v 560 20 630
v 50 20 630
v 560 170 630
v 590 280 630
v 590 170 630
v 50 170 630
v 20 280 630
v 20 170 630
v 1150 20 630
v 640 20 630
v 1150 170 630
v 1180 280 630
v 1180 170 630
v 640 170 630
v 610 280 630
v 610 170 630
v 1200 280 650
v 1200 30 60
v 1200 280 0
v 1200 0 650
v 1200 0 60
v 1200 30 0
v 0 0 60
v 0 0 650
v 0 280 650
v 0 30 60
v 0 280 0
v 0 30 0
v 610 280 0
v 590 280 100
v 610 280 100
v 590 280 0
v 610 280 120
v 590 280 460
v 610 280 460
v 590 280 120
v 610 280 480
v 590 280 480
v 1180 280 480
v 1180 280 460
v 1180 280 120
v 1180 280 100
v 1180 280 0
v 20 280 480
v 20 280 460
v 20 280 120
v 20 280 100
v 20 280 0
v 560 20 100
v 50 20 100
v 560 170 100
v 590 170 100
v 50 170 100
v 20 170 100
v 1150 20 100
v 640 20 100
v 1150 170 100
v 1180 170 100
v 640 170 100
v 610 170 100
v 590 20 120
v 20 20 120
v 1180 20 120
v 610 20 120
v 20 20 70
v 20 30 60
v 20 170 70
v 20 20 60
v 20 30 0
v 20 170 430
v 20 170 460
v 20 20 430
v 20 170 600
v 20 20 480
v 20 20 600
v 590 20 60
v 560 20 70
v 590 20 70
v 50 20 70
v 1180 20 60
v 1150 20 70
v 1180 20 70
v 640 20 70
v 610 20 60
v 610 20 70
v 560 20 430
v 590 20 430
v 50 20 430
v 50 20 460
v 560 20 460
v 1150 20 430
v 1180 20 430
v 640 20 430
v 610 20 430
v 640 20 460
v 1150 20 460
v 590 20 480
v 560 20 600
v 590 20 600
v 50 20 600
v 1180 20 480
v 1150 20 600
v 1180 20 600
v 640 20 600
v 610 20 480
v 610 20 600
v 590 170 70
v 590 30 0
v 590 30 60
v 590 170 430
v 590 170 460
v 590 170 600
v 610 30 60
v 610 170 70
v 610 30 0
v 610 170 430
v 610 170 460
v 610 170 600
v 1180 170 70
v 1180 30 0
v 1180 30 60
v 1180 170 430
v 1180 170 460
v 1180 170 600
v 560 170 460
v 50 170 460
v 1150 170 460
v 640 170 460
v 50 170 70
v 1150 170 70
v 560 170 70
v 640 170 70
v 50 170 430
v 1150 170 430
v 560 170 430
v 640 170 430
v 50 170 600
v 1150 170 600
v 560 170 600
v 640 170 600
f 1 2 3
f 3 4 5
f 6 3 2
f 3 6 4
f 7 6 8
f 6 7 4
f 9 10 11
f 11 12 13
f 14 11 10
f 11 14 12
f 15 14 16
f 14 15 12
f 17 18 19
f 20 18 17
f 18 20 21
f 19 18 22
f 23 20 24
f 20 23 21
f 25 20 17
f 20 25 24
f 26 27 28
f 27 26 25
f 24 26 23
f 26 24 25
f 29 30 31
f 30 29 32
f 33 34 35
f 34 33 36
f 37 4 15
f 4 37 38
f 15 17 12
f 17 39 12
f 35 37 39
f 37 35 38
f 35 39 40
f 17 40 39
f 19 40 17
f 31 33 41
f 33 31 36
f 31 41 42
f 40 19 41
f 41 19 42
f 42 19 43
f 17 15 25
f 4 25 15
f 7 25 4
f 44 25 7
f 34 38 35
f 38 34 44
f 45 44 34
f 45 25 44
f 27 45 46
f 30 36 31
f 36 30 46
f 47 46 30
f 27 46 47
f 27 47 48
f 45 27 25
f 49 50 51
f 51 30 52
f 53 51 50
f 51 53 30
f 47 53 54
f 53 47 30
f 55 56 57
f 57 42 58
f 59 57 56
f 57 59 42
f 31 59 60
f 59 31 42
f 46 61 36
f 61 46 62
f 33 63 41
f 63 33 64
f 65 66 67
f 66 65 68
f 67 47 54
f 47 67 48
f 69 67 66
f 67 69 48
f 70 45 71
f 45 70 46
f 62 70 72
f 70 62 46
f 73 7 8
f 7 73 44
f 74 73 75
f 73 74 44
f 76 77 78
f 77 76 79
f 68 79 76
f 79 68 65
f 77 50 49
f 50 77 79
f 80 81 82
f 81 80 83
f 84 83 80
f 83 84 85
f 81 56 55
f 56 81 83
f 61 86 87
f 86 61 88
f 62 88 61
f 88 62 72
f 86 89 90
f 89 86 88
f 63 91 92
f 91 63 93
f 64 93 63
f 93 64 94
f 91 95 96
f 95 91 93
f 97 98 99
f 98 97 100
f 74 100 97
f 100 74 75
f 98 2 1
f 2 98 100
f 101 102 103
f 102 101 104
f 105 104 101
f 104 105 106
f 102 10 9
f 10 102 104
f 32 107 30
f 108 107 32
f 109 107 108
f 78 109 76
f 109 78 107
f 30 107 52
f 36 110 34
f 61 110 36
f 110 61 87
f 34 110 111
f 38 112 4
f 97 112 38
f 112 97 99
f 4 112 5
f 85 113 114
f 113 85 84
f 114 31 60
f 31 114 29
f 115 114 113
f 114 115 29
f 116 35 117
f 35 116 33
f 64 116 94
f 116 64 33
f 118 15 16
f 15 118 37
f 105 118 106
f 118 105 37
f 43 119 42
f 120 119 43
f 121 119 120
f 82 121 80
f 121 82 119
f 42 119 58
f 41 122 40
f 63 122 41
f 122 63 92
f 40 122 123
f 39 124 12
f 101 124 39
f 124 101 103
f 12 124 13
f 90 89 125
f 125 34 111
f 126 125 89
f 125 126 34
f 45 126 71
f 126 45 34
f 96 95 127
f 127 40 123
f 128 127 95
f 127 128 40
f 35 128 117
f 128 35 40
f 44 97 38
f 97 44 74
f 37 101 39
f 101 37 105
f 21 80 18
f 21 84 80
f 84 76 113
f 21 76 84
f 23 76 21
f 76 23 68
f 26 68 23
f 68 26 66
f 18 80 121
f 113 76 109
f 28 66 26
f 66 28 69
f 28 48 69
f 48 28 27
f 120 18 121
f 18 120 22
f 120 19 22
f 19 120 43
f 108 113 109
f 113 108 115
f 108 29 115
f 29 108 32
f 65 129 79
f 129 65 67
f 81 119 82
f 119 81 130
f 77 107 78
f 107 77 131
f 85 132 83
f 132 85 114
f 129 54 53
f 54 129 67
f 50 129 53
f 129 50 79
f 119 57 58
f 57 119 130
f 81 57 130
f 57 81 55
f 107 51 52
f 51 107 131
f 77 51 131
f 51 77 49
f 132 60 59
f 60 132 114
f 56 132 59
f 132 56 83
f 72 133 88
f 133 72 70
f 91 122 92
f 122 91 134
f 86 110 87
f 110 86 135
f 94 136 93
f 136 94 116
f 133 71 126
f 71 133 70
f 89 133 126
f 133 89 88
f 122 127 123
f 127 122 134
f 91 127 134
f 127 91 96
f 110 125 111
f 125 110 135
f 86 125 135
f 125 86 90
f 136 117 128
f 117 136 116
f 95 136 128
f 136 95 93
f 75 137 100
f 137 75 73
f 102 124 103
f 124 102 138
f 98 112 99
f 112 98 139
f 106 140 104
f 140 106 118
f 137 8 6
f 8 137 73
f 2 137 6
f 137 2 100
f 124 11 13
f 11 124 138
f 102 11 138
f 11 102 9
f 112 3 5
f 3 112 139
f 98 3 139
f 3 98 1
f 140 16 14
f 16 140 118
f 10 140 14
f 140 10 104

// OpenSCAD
// Generated by Parametrix
ca_bookshelf_faceFace_000 = [ [ 20.0000, 60.0000 ],[ 1180.0000, 60.0000 ],[ 1180.0000, 630.0000 ],[ 20.0000, 630.0000 ],[ 20.0000, 60.0000 ] ];
cb_bookshelf_faceFace_000 = [  0, 1, 2, 3, 4 ];
a_bookshelf_faceFace = concat(ca_bookshelf_faceFace_000);
b_bookshelf_faceFace = [cb_bookshelf_faceFace_000];
ca_bookshelf_faceSide_000 = [ [ 280.0000, 0.0000 ],[ 280.0000, 630.0000 ],[ 0.0000, 630.0000 ],[ 0.0000, 60.0000 ],[ 30.0000, 60.0000 ],[ 30.0000, 0.0000 ],[ 280.0000, 0.0000 ] ];
cb_bookshelf_faceSide_000 = [  0, 1, 2, 3, 4, 5, 6 ];
a_bookshelf_faceSide = concat(ca_bookshelf_faceSide_000);
b_bookshelf_faceSide = [cb_bookshelf_faceSide_000];
ca_bookshelf_faceSideMid_000 = [ [ 280.0000, 0.0000 ],[ 280.0000, 630.0000 ],[ 20.0000, 630.0000 ],[ 20.0000, 60.0000 ],[ 30.0000, 60.0000 ],[ 30.0000, 0.0000 ],[ 280.0000, 0.0000 ] ];
cb_bookshelf_faceSideMid_000 = [  0, 1, 2, 3, 4, 5, 6 ];
a_bookshelf_faceSideMid = concat(ca_bookshelf_faceSideMid_000);
b_bookshelf_faceSideMid = [cb_bookshelf_faceSideMid_000];
ca_bookshelf_faceTop_000 = [ [ 0.0000, 0.0000 ],[ 1200.0000, 0.0000 ],[ 1200.0000, 280.0000 ],[ 0.0000, 280.0000 ],[ 0.0000, 0.0000 ] ];
cb_bookshelf_faceTop_000 = [  0, 1, 2, 3, 4 ];
a_bookshelf_faceTop = concat(ca_bookshelf_faceTop_000);
b_bookshelf_faceTop = [cb_bookshelf_faceTop_000];
ca_bookshelf_facePlateau_000 = [ [ 20.0000, 20.0000 ],[ 590.0000, 20.0000 ],[ 590.0000, 280.0000 ],[ 20.0000, 280.0000 ],[ 20.0000, 20.0000 ] ];
cb_bookshelf_facePlateau_000 = [  0, 1, 2, 3, 4 ];
ca_bookshelf_facePlateau_001 = [ [ 610.0000, 20.0000 ],[ 1180.0000, 20.0000 ],[ 1180.0000, 280.0000 ],[ 610.0000, 280.0000 ],[ 610.0000, 20.0000 ] ];
cb_bookshelf_facePlateau_001 = [  5, 6, 7, 8, 9 ];
a_bookshelf_facePlateau = concat(ca_bookshelf_facePlateau_000, ca_bookshelf_facePlateau_001);
b_bookshelf_facePlateau = [cb_bookshelf_facePlateau_000, cb_bookshelf_facePlateau_001];
ca_bookshelf_faceBeamFace_000 = [ [ 50.0000, 70.0000 ],[ 560.0000, 70.0000 ],[ 560.0000, 100.0000 ],[ 50.0000, 100.0000 ],[ 50.0000, 70.0000 ] ];
cb_bookshelf_faceBeamFace_000 = [  0, 1, 2, 3, 4 ];
ca_bookshelf_faceBeamFace_001 = [ [ 50.0000, 430.0000 ],[ 560.0000, 430.0000 ],[ 560.0000, 460.0000 ],[ 50.0000, 460.0000 ],[ 50.0000, 430.0000 ] ];
cb_bookshelf_faceBeamFace_001 = [  5, 6, 7, 8, 9 ];
ca_bookshelf_faceBeamFace_002 = [ [ 50.0000, 600.0000 ],[ 560.0000, 600.0000 ],[ 560.0000, 630.0000 ],[ 50.0000, 630.0000 ],[ 50.0000, 600.0000 ] ];
cb_bookshelf_faceBeamFace_002 = [  10, 11, 12, 13, 14 ];
ca_bookshelf_faceBeamFace_003 = [ [ 640.0000, 70.0000 ],[ 1150.0000, 70.0000 ],[ 1150.0000, 100.0000 ],[ 640.0000, 100.0000 ],[ 640.0000, 70.0000 ] ];
cb_bookshelf_faceBeamFace_003 = [  15, 16, 17, 18, 19 ];
ca_bookshelf_faceBeamFace_004 = [ [ 640.0000, 430.0000 ],[ 1150.0000, 430.0000 ],[ 1150.0000, 460.0000 ],[ 640.0000, 460.0000 ],[ 640.0000, 430.0000 ] ];
cb_bookshelf_faceBeamFace_004 = [  20, 21, 22, 23, 24 ];
ca_bookshelf_faceBeamFace_005 = [ [ 640.0000, 600.0000 ],[ 1150.0000, 600.0000 ],[ 1150.0000, 630.0000 ],[ 640.0000, 630.0000 ],[ 640.0000, 600.0000 ] ];
cb_bookshelf_faceBeamFace_005 = [  25, 26, 27, 28, 29 ];
ca_bookshelf_faceBeamFace_006 = [ [ 20.0000, 120.0000 ],[ 50.0000, 120.0000 ],[ 50.0000, 430.0000 ],[ 20.0000, 430.0000 ],[ 20.0000, 120.0000 ] ];
cb_bookshelf_faceBeamFace_006 = [  30, 31, 32, 33, 34 ];
ca_bookshelf_faceBeamFace_007 = [ [ 20.0000, 480.0000 ],[ 50.0000, 480.0000 ],[ 50.0000, 600.0000 ],[ 20.0000, 600.0000 ],[ 20.0000, 480.0000 ] ];
cb_bookshelf_faceBeamFace_007 = [  35, 36, 37, 38, 39 ];
ca_bookshelf_faceBeamFace_008 = [ [ 1150.0000, 120.0000 ],[ 1180.0000, 120.0000 ],[ 1180.0000, 430.0000 ],[ 1150.0000, 430.0000 ],[ 1150.0000, 120.0000 ] ];
cb_bookshelf_faceBeamFace_008 = [  40, 41, 42, 43, 44 ];
ca_bookshelf_faceBeamFace_009 = [ [ 1150.0000, 480.0000 ],[ 1180.0000, 480.0000 ],[ 1180.0000, 600.0000 ],[ 1150.0000, 600.0000 ],[ 1150.0000, 480.0000 ] ];
cb_bookshelf_faceBeamFace_009 = [  45, 46, 47, 48, 49 ];
ca_bookshelf_faceBeamFace_010 = [ [ 560.0000, 120.0000 ],[ 590.0000, 120.0000 ],[ 590.0000, 430.0000 ],[ 560.0000, 430.0000 ],[ 560.0000, 120.0000 ] ];
cb_bookshelf_faceBeamFace_010 = [  50, 51, 52, 53, 54 ];
ca_bookshelf_faceBeamFace_011 = [ [ 560.0000, 480.0000 ],[ 590.0000, 480.0000 ],[ 590.0000, 600.0000 ],[ 560.0000, 600.0000 ],[ 560.0000, 480.0000 ] ];
cb_bookshelf_faceBeamFace_011 = [  55, 56, 57, 58, 59 ];
ca_bookshelf_faceBeamFace_012 = [ [ 610.0000, 120.0000 ],[ 640.0000, 120.0000 ],[ 640.0000, 430.0000 ],[ 610.0000, 430.0000 ],[ 610.0000, 120.0000 ] ];
cb_bookshelf_faceBeamFace_012 = [  60, 61, 62, 63, 64 ];
ca_bookshelf_faceBeamFace_013 = [ [ 610.0000, 480.0000 ],[ 640.0000, 480.0000 ],[ 640.0000, 600.0000 ],[ 610.0000, 600.0000 ],[ 610.0000, 480.0000 ] ];
cb_bookshelf_faceBeamFace_013 = [  65, 66, 67, 68, 69 ];
a_bookshelf_faceBeamFace = concat(ca_bookshelf_faceBeamFace_000, ca_bookshelf_faceBeamFace_001, ca_bookshelf_faceBeamFace_002, ca_bookshelf_faceBeamFace_003, ca_bookshelf_faceBeamFace_004, ca_bookshelf_faceBeamFace_005, ca_bookshelf_faceBeamFace_006, ca_bookshelf_faceBeamFace_007, ca_bookshelf_faceBeamFace_008, ca_bookshelf_faceBeamFace_009, ca_bookshelf_faceBeamFace_010, ca_bookshelf_faceBeamFace_011, ca_bookshelf_faceBeamFace_012, ca_bookshelf_faceBeamFace_013);
b_bookshelf_faceBeamFace = [cb_bookshelf_faceBeamFace_000, cb_bookshelf_faceBeamFace_001, cb_bookshelf_faceBeamFace_002, cb_bookshelf_faceBeamFace_003, cb_bookshelf_faceBeamFace_004, cb_bookshelf_faceBeamFace_005, cb_bookshelf_faceBeamFace_006, cb_bookshelf_faceBeamFace_007, cb_bookshelf_faceBeamFace_008, cb_bookshelf_faceBeamFace_009, cb_bookshelf_faceBeamFace_010, cb_bookshelf_faceBeamFace_011, cb_bookshelf_faceBeamFace_012, cb_bookshelf_faceBeamFace_013];
ca_bookshelf_faceBeamTop_000 = [ [ 20.0000, 20.0000 ],[ 50.0000, 20.0000 ],[ 50.0000, 170.0000 ],[ 20.0000, 170.0000 ],[ 20.0000, 20.0000 ] ];
cb_bookshelf_faceBeamTop_000 = [  0, 1, 2, 3, 4 ];
ca_bookshelf_faceBeamTop_001 = [ [ 1150.0000, 20.0000 ],[ 1180.0000, 20.0000 ],[ 1180.0000, 170.0000 ],[ 1150.0000, 170.0000 ],[ 1150.0000, 20.0000 ] ];
cb_bookshelf_faceBeamTop_001 = [  5, 6, 7, 8, 9 ];
ca_bookshelf_faceBeamTop_002 = [ [ 560.0000, 20.0000 ],[ 590.0000, 20.0000 ],[ 590.0000, 170.0000 ],[ 560.0000, 170.0000 ],[ 560.0000, 20.0000 ] ];
cb_bookshelf_faceBeamTop_002 = [  10, 11, 12, 13, 14 ];
ca_bookshelf_faceBeamTop_003 = [ [ 610.0000, 20.0000 ],[ 640.0000, 20.0000 ],[ 640.0000, 170.0000 ],[ 610.0000, 170.0000 ],[ 610.0000, 20.0000 ] ];
cb_bookshelf_faceBeamTop_003 = [  15, 16, 17, 18, 19 ];
a_bookshelf_faceBeamTop = concat(ca_bookshelf_faceBeamTop_000, ca_bookshelf_faceBeamTop_001, ca_bookshelf_faceBeamTop_002, ca_bookshelf_faceBeamTop_003);
b_bookshelf_faceBeamTop = [cb_bookshelf_faceBeamTop_000, cb_bookshelf_faceBeamTop_001, cb_bookshelf_faceBeamTop_002, cb_bookshelf_faceBeamTop_003];

module subpax_bookshelf_top () {
	translate( [ 0, 0, 630 ])
		rotate( [ 0, 0, 0 ])
			   linear_extrude(height = 20) polygon(a_bookshelf_faceTop, b_bookshelf_faceTop);
}

module subpax_bookshelf_plateau1 () {
	translate( [ 0, 0, 100 ])
		rotate( [ 0, 0, 0 ])
			   linear_extrude(height = 20) polygon(a_bookshelf_facePlateau, b_bookshelf_facePlateau);
}

module subpax_bookshelf_plateau2 () {
	translate( [ 0, 0, 460 ])
		rotate( [ 0, 0, 0 ])
			   linear_extrude(height = 20) polygon(a_bookshelf_facePlateau, b_bookshelf_facePlateau);
}

module subpax_bookshelf_back () {
	translate( [ 0, 20, 0 ])
		rotate( [ 90, 0, 0 ])
			   linear_extrude(height = 20) polygon(a_bookshelf_faceFace, b_bookshelf_faceFace);
}

module subpax_bookshelf_side0 () {
	translate( [ 0, 0, 0 ])
		rotate( [ 90, 0, 90 ])
			   linear_extrude(height = 20) polygon(a_bookshelf_faceSide, b_bookshelf_faceSide);
}

module subpax_bookshelf_side1 () {
	translate( [ 1180, 0, 0 ])
		rotate( [ 90, 0, 90 ])
			   linear_extrude(height = 20) polygon(a_bookshelf_faceSide, b_bookshelf_faceSide);
}

module subpax_bookshelf_sideMid () {
	translate( [ 590, 0, 0 ])
		rotate( [ 90, 0, 90 ])
			   linear_extrude(height = 20) polygon(a_bookshelf_faceSideMid, b_bookshelf_faceSideMid);
}

module subpax_bookshelf_beam1 () {
	translate( [ 0, 50, 0 ])
		rotate( [ 90, 0, 0 ])
			   linear_extrude(height = 30) polygon(a_bookshelf_faceBeamFace, b_bookshelf_faceBeamFace);
}

module subpax_bookshelf_beam20 () {
	translate( [ 0, 0, 70 ])
		rotate( [ 0, 0, 0 ])
			   linear_extrude(height = 30) polygon(a_bookshelf_faceBeamTop, b_bookshelf_faceBeamTop);
}

module subpax_bookshelf_beam21 () {
	translate( [ 0, 0, 430 ])
		rotate( [ 0, 0, 0 ])
			   linear_extrude(height = 30) polygon(a_bookshelf_faceBeamTop, b_bookshelf_faceBeamTop);
}

module subpax_bookshelf_beam22 () {
	translate( [ 0, 0, 600 ])
		rotate( [ 0, 0, 0 ])
			   linear_extrude(height = 30) polygon(a_bookshelf_faceBeamTop, b_bookshelf_faceBeamTop);
}

module pax_bookshelf () {
	union () {
		subpax_bookshelf_top();
subpax_bookshelf_plateau1();
subpax_bookshelf_plateau2();
subpax_bookshelf_back();
subpax_bookshelf_side0();
subpax_bookshelf_side1();
subpax_bookshelf_sideMid();
subpax_bookshelf_beam1();
subpax_bookshelf_beam20();
subpax_bookshelf_beam21();
subpax_bookshelf_beam22();
	}
}

pax_bookshelf();
